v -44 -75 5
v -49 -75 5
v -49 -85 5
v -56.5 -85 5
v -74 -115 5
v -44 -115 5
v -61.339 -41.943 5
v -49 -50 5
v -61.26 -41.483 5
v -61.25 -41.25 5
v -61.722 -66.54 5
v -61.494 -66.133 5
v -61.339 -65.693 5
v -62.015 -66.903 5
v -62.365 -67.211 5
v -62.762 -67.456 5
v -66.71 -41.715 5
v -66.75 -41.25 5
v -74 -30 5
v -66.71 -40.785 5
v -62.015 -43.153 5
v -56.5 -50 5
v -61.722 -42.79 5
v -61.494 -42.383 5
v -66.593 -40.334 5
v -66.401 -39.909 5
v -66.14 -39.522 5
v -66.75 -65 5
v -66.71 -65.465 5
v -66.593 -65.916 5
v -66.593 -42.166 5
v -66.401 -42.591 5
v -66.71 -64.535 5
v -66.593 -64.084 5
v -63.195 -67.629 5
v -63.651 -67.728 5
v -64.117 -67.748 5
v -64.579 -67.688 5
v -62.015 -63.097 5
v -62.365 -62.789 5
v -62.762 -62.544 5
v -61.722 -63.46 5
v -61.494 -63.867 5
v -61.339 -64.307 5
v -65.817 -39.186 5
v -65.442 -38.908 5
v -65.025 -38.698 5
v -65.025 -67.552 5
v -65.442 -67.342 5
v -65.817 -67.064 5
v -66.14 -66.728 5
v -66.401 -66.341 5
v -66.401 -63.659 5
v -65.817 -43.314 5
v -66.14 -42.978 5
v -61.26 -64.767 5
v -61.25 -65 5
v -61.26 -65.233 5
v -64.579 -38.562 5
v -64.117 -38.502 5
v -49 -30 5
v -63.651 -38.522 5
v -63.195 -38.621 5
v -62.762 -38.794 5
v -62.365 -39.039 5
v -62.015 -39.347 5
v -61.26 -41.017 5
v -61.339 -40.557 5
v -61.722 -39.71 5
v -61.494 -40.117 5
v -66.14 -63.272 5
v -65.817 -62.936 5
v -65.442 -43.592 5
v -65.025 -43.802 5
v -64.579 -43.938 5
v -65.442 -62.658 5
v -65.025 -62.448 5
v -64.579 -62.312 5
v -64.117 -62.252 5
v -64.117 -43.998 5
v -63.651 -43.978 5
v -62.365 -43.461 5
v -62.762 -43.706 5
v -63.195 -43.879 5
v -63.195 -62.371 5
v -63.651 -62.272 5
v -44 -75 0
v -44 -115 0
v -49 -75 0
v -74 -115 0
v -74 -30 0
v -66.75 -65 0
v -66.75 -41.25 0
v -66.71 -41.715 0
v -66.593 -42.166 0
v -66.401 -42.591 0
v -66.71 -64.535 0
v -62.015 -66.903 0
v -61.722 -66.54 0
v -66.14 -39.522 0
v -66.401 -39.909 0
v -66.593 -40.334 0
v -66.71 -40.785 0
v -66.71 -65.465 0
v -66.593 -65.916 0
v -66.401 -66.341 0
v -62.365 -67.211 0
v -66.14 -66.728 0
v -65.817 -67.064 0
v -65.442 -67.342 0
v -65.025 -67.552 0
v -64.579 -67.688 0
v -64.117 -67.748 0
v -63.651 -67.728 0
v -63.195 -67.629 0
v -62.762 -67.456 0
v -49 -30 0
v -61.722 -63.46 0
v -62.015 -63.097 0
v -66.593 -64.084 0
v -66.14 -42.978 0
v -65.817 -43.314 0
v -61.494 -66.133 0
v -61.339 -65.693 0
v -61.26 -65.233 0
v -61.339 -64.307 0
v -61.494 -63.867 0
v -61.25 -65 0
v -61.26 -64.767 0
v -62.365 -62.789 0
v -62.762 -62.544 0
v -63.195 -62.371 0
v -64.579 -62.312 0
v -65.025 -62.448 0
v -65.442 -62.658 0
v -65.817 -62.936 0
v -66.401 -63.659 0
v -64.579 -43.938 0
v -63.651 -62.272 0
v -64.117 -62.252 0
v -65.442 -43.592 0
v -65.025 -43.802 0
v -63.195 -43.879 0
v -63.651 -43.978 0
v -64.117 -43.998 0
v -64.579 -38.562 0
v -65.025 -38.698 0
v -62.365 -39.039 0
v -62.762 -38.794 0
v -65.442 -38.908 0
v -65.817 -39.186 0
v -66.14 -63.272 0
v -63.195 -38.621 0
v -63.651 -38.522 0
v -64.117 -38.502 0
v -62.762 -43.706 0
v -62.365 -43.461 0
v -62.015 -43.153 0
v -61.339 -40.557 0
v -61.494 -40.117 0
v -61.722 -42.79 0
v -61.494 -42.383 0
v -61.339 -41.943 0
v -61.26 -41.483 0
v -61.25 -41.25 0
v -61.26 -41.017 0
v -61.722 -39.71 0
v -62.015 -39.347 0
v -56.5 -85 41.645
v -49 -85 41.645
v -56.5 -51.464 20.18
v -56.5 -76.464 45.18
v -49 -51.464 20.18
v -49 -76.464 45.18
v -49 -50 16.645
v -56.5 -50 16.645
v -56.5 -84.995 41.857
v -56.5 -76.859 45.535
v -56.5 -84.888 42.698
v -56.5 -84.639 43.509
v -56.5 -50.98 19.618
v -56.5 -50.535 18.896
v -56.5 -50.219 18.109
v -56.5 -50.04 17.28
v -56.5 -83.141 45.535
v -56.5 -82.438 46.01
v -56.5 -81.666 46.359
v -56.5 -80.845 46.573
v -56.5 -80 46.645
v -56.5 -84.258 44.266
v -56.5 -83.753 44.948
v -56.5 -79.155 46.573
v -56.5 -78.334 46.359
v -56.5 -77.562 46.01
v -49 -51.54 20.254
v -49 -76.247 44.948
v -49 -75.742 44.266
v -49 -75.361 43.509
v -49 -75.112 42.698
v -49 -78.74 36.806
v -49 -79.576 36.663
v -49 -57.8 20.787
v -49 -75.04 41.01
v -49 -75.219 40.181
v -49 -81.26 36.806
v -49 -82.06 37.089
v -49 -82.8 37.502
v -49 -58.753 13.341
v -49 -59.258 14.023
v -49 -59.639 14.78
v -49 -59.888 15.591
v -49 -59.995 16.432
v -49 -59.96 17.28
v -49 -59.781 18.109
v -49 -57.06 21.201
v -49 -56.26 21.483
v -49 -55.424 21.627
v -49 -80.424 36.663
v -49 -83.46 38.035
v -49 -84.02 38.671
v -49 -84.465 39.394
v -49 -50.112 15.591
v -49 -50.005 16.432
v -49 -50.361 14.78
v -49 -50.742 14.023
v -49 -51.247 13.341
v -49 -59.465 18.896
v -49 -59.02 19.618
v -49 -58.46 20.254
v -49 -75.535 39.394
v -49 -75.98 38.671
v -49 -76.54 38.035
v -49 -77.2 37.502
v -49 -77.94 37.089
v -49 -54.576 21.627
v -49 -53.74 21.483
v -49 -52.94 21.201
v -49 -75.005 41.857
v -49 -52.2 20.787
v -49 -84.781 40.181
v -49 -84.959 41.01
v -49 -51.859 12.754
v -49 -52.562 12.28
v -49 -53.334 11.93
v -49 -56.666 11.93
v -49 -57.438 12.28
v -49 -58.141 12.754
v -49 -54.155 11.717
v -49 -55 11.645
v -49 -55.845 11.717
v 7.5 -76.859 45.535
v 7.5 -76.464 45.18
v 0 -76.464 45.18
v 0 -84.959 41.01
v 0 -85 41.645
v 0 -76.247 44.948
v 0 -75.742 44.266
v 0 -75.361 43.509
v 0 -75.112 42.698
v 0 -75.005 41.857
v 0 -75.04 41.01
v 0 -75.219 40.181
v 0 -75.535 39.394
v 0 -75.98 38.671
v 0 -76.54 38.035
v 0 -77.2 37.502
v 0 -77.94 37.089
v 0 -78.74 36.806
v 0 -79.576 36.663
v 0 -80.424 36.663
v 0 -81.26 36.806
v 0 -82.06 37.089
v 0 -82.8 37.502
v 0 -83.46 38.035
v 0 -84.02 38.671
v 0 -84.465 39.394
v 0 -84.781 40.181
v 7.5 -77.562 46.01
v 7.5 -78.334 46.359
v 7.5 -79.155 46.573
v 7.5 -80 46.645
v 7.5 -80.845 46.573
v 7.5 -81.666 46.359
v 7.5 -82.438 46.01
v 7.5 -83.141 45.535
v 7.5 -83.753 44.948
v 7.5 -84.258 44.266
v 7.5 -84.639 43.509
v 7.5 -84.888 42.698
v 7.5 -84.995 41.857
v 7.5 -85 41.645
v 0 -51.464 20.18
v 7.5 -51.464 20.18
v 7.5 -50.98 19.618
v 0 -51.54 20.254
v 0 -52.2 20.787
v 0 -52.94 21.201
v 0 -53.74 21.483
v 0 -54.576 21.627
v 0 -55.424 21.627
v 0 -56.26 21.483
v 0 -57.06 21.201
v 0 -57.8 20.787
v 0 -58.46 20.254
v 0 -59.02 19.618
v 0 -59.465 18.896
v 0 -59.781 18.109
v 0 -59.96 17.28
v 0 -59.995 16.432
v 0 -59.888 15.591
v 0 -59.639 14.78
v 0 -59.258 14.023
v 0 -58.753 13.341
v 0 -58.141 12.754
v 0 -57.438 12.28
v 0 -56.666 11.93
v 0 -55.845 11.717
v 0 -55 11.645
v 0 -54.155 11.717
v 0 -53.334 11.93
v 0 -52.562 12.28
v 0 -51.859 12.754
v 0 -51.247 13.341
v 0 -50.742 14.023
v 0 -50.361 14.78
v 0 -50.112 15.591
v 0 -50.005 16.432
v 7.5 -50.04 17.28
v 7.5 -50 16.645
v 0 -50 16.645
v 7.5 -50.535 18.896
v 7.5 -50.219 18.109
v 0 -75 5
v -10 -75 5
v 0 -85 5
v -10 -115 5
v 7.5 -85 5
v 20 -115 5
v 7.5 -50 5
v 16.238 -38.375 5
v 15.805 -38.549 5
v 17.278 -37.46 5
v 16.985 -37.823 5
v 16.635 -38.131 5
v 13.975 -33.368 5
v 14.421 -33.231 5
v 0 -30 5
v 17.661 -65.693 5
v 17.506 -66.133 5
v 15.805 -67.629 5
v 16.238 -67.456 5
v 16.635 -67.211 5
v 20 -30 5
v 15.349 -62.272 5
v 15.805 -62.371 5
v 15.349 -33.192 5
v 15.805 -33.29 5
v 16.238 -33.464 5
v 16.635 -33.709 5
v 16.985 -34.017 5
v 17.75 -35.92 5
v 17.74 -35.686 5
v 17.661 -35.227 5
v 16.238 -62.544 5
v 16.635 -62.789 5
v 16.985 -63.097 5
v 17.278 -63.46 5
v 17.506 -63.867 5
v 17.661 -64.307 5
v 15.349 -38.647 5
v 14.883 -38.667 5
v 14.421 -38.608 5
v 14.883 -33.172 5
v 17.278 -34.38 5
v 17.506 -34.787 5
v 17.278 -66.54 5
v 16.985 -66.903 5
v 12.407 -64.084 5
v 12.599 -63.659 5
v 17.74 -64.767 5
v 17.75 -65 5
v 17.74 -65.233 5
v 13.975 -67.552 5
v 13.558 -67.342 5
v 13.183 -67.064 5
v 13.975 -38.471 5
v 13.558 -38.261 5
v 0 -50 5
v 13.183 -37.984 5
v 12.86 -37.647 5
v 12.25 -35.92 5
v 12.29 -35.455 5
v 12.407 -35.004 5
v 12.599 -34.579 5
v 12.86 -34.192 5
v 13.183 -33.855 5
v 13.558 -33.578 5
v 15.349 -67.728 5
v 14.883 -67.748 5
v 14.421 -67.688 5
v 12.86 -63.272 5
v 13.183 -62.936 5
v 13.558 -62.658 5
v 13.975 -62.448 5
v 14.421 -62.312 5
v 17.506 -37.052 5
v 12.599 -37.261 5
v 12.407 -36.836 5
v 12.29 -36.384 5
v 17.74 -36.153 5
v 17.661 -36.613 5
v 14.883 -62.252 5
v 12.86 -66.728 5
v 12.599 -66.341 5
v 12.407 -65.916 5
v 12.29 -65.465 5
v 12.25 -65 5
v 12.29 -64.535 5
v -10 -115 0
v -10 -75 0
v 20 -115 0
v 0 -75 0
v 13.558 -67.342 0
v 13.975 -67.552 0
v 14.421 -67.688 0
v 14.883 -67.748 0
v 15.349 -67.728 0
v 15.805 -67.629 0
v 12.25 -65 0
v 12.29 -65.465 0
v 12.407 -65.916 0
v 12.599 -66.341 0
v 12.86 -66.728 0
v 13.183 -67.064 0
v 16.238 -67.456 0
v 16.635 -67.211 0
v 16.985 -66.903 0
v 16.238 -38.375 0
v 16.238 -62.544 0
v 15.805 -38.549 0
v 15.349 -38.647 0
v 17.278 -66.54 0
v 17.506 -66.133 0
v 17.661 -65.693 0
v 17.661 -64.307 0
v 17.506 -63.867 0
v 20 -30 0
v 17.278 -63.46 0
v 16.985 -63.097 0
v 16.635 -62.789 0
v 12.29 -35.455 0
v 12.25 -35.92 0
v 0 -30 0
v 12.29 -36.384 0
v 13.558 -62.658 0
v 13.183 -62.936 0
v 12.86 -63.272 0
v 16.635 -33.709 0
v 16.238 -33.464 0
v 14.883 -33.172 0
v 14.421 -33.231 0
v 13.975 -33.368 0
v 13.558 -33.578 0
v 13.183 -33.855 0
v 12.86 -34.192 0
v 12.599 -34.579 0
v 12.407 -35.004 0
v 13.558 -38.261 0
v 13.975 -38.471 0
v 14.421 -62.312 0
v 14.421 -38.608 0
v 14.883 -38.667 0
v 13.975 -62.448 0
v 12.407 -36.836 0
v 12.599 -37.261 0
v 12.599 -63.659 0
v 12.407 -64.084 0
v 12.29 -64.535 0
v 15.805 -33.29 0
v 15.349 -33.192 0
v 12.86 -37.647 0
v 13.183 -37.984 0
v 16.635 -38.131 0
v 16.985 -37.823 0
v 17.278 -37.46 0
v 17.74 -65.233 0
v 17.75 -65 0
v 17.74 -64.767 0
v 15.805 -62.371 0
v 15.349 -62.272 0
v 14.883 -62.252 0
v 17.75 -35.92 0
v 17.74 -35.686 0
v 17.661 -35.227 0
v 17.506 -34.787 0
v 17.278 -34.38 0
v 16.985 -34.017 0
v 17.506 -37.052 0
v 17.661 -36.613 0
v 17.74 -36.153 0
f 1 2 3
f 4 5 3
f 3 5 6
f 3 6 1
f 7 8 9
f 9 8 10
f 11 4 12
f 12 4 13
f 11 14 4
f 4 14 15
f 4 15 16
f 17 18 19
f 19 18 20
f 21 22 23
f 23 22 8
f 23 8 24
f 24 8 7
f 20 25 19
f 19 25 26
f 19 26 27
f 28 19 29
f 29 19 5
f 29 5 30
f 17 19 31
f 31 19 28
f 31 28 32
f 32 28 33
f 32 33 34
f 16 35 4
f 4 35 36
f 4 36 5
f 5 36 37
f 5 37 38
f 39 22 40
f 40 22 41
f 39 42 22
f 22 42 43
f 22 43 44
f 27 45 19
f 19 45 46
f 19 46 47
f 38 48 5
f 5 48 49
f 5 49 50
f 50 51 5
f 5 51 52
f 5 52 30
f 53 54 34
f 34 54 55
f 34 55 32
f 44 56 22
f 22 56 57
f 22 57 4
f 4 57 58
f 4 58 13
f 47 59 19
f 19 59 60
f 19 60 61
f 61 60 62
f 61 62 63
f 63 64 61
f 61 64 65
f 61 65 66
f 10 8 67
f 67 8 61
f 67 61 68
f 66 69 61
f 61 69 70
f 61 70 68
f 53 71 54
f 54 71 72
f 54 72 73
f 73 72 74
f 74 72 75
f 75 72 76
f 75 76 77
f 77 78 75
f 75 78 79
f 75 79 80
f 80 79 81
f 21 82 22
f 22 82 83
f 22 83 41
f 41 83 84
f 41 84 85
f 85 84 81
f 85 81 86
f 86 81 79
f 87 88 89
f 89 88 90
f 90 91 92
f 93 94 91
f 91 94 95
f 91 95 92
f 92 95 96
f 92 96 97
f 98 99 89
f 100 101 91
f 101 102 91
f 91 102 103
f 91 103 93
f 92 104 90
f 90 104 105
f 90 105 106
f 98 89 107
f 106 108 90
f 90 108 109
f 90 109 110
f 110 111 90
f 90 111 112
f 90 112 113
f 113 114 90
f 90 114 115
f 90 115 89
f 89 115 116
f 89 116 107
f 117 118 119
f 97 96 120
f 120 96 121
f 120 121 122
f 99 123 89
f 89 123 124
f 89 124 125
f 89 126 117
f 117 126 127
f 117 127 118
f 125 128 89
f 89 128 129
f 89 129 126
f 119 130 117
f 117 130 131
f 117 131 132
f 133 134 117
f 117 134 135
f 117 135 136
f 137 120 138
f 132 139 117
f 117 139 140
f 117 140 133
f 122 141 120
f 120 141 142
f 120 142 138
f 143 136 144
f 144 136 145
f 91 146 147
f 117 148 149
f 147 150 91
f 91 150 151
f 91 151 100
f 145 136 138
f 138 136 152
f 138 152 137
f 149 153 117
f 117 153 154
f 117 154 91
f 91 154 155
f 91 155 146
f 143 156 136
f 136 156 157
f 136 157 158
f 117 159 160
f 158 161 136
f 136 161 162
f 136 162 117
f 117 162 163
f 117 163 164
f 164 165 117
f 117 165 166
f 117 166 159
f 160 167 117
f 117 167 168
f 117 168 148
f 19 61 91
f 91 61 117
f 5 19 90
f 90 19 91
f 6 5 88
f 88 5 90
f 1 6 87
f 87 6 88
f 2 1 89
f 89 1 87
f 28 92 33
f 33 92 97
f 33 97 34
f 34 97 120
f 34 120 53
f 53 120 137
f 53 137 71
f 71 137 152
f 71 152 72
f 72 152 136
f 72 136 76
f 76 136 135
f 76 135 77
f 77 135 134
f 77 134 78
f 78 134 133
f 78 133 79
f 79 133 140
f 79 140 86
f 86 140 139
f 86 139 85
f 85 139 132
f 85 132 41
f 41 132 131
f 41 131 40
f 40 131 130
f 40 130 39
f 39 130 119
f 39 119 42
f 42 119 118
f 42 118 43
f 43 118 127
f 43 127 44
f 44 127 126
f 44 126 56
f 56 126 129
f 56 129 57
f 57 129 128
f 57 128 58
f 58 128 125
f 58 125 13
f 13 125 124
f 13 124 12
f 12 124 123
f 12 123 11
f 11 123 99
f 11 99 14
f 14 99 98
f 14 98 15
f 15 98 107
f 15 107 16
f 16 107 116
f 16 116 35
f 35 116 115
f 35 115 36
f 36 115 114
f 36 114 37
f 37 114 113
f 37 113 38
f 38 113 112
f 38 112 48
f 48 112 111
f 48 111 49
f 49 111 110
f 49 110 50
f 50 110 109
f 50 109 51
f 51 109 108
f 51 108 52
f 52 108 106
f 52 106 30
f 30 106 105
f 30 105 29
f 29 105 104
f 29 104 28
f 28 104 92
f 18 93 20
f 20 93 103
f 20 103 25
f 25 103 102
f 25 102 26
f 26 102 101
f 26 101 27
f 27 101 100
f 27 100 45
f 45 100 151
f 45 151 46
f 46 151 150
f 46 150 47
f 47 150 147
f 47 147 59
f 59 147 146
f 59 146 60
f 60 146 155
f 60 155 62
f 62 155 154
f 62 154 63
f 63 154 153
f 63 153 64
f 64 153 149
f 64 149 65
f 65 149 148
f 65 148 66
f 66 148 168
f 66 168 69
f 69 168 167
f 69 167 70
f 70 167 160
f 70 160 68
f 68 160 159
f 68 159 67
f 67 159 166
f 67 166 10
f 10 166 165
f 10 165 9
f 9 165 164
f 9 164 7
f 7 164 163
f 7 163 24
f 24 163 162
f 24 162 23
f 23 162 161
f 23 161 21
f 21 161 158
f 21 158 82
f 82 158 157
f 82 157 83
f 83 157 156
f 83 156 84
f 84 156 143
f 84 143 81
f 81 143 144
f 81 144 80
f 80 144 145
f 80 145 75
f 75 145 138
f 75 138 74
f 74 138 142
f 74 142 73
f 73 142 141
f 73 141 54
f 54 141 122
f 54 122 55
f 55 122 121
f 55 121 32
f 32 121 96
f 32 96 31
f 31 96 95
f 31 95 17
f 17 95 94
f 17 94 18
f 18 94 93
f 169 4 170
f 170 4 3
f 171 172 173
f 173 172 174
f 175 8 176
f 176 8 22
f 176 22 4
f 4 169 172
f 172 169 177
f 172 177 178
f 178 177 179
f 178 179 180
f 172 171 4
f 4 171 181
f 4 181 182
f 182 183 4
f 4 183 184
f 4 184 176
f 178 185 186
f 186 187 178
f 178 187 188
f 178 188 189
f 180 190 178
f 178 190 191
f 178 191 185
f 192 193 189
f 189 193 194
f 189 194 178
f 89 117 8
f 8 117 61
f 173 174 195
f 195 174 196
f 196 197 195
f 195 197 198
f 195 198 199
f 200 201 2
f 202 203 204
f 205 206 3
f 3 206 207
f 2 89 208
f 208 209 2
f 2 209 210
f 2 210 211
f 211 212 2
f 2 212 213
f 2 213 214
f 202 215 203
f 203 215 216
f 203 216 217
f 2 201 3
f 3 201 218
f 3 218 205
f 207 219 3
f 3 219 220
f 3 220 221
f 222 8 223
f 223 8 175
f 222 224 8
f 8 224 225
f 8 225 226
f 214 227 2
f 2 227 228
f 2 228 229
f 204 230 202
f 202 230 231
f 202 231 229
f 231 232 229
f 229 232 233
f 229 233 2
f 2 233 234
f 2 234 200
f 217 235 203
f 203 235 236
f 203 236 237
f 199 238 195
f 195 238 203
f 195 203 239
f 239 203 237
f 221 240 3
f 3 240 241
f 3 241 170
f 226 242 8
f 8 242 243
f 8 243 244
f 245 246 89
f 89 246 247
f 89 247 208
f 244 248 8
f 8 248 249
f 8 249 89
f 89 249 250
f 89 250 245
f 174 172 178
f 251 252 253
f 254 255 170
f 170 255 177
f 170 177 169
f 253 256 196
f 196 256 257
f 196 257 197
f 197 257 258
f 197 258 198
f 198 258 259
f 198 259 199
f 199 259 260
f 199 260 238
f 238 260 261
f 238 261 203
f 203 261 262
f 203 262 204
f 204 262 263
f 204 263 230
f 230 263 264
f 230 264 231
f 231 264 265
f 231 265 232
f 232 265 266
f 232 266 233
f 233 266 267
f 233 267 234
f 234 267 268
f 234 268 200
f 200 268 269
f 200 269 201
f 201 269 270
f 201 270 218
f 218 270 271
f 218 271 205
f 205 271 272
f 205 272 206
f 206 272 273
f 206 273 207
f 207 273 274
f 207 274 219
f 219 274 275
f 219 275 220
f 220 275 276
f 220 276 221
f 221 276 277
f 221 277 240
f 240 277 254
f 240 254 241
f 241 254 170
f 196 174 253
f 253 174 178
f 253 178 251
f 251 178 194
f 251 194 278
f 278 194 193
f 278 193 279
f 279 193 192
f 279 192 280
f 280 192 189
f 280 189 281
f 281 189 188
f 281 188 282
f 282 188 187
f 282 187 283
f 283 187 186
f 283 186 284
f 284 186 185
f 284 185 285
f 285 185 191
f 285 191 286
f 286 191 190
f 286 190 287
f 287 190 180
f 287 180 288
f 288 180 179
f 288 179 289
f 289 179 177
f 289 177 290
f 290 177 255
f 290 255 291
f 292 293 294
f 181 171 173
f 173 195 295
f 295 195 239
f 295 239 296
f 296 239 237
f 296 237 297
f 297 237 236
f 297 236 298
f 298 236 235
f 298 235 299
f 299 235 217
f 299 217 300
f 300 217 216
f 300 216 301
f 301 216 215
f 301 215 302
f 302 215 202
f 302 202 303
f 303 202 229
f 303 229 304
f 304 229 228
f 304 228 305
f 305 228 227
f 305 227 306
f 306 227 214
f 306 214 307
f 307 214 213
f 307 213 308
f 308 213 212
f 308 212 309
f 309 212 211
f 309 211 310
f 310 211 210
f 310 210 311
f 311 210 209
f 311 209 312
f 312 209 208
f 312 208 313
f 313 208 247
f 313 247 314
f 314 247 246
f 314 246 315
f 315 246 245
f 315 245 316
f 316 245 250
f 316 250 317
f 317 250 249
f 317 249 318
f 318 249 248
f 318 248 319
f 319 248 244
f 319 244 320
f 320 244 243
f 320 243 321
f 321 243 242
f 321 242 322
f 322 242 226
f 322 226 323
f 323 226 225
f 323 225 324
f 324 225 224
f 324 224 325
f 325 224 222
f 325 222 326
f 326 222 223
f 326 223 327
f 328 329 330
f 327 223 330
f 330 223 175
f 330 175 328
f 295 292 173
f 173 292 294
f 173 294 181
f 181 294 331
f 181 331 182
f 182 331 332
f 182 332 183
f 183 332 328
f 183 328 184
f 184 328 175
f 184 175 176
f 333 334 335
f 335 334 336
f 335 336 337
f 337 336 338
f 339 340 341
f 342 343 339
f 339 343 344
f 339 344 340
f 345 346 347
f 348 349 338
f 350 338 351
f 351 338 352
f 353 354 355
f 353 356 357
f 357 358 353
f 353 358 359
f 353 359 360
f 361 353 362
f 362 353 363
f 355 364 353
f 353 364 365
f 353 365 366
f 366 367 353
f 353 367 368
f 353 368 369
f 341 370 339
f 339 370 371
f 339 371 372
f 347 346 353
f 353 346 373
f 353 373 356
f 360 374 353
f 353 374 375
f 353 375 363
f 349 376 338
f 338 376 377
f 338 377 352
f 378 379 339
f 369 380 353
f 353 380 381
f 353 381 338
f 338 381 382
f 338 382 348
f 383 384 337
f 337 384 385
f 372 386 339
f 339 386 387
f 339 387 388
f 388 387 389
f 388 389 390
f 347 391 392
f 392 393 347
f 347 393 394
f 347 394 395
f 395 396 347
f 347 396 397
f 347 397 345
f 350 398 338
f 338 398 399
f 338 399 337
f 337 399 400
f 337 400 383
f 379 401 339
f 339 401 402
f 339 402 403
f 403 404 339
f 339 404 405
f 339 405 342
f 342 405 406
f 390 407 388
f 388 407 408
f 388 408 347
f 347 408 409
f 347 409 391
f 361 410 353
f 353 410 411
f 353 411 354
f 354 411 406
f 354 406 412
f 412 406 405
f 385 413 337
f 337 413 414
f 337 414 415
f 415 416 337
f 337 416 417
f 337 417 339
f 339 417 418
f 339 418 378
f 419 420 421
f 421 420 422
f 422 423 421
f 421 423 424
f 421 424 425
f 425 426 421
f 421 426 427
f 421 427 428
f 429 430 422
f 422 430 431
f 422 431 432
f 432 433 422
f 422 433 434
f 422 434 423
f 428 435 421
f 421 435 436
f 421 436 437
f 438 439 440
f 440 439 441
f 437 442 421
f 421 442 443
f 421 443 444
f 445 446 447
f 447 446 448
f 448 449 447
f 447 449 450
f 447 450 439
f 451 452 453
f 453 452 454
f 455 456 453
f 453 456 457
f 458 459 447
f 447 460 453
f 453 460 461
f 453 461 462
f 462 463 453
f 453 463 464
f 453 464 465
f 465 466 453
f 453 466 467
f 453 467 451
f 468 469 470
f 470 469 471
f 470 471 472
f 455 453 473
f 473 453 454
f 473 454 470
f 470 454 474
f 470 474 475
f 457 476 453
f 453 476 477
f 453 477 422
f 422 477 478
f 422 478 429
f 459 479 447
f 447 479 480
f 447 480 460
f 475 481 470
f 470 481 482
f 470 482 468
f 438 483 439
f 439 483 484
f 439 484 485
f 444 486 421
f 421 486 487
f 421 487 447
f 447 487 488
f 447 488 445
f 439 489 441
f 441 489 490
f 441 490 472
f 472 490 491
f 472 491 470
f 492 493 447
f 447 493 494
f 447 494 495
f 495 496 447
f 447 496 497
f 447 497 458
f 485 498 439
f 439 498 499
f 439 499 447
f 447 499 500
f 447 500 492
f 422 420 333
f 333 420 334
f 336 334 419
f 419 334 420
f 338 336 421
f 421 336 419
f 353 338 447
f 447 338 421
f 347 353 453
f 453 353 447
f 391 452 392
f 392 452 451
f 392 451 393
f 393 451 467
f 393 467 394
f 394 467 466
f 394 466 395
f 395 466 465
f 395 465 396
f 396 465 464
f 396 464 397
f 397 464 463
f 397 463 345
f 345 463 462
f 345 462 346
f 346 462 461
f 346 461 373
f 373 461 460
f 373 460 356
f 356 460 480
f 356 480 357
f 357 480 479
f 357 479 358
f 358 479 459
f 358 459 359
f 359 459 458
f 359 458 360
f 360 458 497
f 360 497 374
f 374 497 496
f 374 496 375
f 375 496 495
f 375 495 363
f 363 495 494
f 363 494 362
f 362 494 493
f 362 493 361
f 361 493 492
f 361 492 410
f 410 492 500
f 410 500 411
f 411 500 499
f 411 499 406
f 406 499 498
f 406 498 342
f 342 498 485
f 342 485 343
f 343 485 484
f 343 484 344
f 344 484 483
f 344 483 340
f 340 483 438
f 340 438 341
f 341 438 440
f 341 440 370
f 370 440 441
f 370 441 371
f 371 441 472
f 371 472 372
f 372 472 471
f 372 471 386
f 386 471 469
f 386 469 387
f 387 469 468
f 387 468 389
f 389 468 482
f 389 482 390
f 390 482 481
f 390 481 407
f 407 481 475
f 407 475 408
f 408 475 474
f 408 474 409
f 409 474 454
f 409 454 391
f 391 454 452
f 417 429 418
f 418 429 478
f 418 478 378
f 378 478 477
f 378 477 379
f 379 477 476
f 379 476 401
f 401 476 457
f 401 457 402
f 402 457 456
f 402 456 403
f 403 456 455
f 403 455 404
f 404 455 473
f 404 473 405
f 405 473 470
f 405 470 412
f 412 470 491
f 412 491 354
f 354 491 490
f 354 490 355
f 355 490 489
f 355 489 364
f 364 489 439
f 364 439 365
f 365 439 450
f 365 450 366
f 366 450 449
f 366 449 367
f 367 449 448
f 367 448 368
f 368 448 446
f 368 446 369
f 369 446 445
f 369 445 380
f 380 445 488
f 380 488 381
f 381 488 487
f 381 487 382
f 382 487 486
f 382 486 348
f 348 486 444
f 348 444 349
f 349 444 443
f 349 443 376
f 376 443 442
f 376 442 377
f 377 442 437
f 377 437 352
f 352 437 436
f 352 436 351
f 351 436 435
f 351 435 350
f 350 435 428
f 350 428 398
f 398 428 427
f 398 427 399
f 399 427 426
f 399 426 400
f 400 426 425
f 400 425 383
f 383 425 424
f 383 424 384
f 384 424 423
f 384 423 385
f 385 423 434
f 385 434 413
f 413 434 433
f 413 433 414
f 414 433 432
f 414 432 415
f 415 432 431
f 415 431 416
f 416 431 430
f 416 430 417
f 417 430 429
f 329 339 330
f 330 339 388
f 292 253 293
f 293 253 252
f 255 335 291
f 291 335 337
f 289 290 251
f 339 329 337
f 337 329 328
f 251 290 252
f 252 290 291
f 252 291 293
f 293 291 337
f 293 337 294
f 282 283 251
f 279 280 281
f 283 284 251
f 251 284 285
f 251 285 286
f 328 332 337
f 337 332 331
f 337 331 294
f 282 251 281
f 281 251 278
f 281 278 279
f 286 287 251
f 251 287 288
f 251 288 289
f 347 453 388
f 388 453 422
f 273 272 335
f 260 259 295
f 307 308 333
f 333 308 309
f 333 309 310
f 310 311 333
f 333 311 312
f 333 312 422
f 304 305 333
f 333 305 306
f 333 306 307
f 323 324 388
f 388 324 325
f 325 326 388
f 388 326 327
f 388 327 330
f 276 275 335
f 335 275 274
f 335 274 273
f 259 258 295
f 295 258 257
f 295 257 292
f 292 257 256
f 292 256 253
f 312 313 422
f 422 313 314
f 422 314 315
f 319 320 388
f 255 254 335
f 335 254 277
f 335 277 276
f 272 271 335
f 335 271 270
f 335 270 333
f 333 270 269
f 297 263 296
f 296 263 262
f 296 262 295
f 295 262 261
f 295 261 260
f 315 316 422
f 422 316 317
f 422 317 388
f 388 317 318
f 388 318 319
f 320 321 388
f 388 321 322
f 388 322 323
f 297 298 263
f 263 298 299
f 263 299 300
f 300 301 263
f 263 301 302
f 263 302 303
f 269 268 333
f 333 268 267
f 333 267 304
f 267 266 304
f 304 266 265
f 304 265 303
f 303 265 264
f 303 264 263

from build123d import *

# Parameters (mm, degrees)
SKETCH2_R             = 2.75
BOSS_EXTRUDE1_DEPTH   = 5
BOSS_EXTRUDE1_2_DEPTH = 5
BOSS_EXTRUDE3_DEPTH   = 2.5
BOSS_EXTRUDE4_DEPTH   = 2.5
BOSS_EXTRUDE5_DEPTH   = 5
BOSS_EXTRUDE6_DEPTH   = 5
FILLET1_R             = 5
FILLET2_R             = 5
FILLET3_R             = 5
FILLET4_R             = 5
SKETCH7_R             = 5
BOSS_EXTRUDE7_DEPTH   = 49
BOSS_EXTRUDE8_START   = 49
SKETCH8_R             = 5
BOSS_EXTRUDE8_DEPTH   = 49


with BuildPart() as part:
    # Sketch2 → Boss-Extrude1 (new body)
    with BuildSketch(Plane.XY):
        Polygon((-10, -75), (-10, -115), (20, -115), (20, -30), (5, -30), (5, -75), align=None)
        with Locations((15, -35.919713403)):
            Circle(SKETCH2_R, mode=Mode.SUBTRACT)
        with Locations((15, -65)):
            Circle(SKETCH2_R, mode=Mode.SUBTRACT)
    extrude(amount=BOSS_EXTRUDE1_DEPTH)

    # Sketch4 → Boss-Extrude4 (add)
    with BuildSketch(Plane.ZY.offset(-5)):
        Polygon((0, -30), (0, -75), (5, -75), (5, -85), (53.715728753, -85), (18.715728753, -50), (5, -50), (5, -30), align=None)
    extrude(amount=-BOSS_EXTRUDE4_DEPTH)

    # Sketch6 → Boss-Extrude6 (add)
    with BuildSketch(Plane.ZY.offset(-5)):
        Polygon((0, -30), (0, -75), (5, -75), (5, -85), (53.715728753, -85), (18.715728753, -50), (5, -50), (5, -30), align=None)
    extrude(amount=BOSS_EXTRUDE6_DEPTH)

    # Fillet1
    fillet1_edges = [part.edges().sort_by_distance(p)[0] for p in [
        (3.75, -85, 53.715728753),
    ]]
    fillet(fillet1_edges, radius=FILLET1_R)

    # Fillet4
    fillet4_edges = [part.edges().sort_by_distance(p)[0] for p in [
        (3.75, -50, 18.715728753),
    ]]
    fillet(fillet4_edges, radius=FILLET4_R)



with BuildPart() as body_2:
    # Sketch2 → Boss-Extrude1 2 (new body)
    with BuildSketch(Plane.XY):
        Polygon((-74, -30), (-74, -115), (-44, -115), (-44, -75), (-54, -75), (-54, -30), align=None)
        with Locations((-64, -65)):
            Circle(SKETCH2_R, mode=Mode.SUBTRACT)
        with Locations((-64, -41.25)):
            Circle(SKETCH2_R, mode=Mode.SUBTRACT)
    extrude(amount=BOSS_EXTRUDE1_2_DEPTH)

    # Sketch3 → Boss-Extrude3 (add)
    with BuildSketch(Plane(origin=(-54, 0, 0), x_dir=(0, 0, -1), z_dir=(1, 0, 0))):
        Polygon((-5, -75), (-5, -50), (-18.715728753, -50), (-53.715728753, -85), (-5, -85), align=None)
    extrude(amount=-BOSS_EXTRUDE3_DEPTH)

    # Sketch5 → Boss-Extrude5 (add)
    with BuildSketch(Plane(origin=(-54, 0, 0), x_dir=(0, 0, -1), z_dir=(1, 0, 0))):
        Polygon((0, -75), (0, -30), (-5, -30), (-5, -50), (-18.715728753, -50), (-53.715728753, -85), (-5, -85), (-5, -75), align=None)
    extrude(amount=BOSS_EXTRUDE5_DEPTH)

    # Fillet2
    fillet2_edges = [body_2.edges().sort_by_distance(p)[0] for p in [
        (-52.75, -85, 53.715728753),
    ]]
    fillet(fillet2_edges, radius=FILLET2_R)

    # Fillet3
    fillet3_edges = [body_2.edges().sort_by_distance(p)[0] for p in [
        (-52.75, -50, 18.715728753),
    ]]
    fillet(fillet3_edges, radius=FILLET3_R)


with BuildPart() as part_1:
    add(part.part)

    add(body_2.part)  # Boss-Extrude7 merges body 2
    # Sketch7 → Boss-Extrude7 (add)
    with BuildSketch(Plane(origin=(-49, 0, 0), x_dir=(0, 0, -1), z_dir=(1, 0, 0))):
        with Locations(Location((-41.644660941, -80, 0), (0, 0, 135))):
            Circle(SKETCH7_R)
    extrude(amount=BOSS_EXTRUDE7_DEPTH)

    # Sketch8 → Boss-Extrude8 (add)
    with BuildSketch(Plane(origin=(-49, 0, 0), x_dir=(0, 0, -1), z_dir=(1, 0, 0)).offset(BOSS_EXTRUDE8_START)):
        with Locations(Location((-16.644660941, -55, 0), (0, 0, 90))):
            Circle(SKETCH8_R)
    extrude(amount=-BOSS_EXTRUDE8_DEPTH)


solid = part_1.part
